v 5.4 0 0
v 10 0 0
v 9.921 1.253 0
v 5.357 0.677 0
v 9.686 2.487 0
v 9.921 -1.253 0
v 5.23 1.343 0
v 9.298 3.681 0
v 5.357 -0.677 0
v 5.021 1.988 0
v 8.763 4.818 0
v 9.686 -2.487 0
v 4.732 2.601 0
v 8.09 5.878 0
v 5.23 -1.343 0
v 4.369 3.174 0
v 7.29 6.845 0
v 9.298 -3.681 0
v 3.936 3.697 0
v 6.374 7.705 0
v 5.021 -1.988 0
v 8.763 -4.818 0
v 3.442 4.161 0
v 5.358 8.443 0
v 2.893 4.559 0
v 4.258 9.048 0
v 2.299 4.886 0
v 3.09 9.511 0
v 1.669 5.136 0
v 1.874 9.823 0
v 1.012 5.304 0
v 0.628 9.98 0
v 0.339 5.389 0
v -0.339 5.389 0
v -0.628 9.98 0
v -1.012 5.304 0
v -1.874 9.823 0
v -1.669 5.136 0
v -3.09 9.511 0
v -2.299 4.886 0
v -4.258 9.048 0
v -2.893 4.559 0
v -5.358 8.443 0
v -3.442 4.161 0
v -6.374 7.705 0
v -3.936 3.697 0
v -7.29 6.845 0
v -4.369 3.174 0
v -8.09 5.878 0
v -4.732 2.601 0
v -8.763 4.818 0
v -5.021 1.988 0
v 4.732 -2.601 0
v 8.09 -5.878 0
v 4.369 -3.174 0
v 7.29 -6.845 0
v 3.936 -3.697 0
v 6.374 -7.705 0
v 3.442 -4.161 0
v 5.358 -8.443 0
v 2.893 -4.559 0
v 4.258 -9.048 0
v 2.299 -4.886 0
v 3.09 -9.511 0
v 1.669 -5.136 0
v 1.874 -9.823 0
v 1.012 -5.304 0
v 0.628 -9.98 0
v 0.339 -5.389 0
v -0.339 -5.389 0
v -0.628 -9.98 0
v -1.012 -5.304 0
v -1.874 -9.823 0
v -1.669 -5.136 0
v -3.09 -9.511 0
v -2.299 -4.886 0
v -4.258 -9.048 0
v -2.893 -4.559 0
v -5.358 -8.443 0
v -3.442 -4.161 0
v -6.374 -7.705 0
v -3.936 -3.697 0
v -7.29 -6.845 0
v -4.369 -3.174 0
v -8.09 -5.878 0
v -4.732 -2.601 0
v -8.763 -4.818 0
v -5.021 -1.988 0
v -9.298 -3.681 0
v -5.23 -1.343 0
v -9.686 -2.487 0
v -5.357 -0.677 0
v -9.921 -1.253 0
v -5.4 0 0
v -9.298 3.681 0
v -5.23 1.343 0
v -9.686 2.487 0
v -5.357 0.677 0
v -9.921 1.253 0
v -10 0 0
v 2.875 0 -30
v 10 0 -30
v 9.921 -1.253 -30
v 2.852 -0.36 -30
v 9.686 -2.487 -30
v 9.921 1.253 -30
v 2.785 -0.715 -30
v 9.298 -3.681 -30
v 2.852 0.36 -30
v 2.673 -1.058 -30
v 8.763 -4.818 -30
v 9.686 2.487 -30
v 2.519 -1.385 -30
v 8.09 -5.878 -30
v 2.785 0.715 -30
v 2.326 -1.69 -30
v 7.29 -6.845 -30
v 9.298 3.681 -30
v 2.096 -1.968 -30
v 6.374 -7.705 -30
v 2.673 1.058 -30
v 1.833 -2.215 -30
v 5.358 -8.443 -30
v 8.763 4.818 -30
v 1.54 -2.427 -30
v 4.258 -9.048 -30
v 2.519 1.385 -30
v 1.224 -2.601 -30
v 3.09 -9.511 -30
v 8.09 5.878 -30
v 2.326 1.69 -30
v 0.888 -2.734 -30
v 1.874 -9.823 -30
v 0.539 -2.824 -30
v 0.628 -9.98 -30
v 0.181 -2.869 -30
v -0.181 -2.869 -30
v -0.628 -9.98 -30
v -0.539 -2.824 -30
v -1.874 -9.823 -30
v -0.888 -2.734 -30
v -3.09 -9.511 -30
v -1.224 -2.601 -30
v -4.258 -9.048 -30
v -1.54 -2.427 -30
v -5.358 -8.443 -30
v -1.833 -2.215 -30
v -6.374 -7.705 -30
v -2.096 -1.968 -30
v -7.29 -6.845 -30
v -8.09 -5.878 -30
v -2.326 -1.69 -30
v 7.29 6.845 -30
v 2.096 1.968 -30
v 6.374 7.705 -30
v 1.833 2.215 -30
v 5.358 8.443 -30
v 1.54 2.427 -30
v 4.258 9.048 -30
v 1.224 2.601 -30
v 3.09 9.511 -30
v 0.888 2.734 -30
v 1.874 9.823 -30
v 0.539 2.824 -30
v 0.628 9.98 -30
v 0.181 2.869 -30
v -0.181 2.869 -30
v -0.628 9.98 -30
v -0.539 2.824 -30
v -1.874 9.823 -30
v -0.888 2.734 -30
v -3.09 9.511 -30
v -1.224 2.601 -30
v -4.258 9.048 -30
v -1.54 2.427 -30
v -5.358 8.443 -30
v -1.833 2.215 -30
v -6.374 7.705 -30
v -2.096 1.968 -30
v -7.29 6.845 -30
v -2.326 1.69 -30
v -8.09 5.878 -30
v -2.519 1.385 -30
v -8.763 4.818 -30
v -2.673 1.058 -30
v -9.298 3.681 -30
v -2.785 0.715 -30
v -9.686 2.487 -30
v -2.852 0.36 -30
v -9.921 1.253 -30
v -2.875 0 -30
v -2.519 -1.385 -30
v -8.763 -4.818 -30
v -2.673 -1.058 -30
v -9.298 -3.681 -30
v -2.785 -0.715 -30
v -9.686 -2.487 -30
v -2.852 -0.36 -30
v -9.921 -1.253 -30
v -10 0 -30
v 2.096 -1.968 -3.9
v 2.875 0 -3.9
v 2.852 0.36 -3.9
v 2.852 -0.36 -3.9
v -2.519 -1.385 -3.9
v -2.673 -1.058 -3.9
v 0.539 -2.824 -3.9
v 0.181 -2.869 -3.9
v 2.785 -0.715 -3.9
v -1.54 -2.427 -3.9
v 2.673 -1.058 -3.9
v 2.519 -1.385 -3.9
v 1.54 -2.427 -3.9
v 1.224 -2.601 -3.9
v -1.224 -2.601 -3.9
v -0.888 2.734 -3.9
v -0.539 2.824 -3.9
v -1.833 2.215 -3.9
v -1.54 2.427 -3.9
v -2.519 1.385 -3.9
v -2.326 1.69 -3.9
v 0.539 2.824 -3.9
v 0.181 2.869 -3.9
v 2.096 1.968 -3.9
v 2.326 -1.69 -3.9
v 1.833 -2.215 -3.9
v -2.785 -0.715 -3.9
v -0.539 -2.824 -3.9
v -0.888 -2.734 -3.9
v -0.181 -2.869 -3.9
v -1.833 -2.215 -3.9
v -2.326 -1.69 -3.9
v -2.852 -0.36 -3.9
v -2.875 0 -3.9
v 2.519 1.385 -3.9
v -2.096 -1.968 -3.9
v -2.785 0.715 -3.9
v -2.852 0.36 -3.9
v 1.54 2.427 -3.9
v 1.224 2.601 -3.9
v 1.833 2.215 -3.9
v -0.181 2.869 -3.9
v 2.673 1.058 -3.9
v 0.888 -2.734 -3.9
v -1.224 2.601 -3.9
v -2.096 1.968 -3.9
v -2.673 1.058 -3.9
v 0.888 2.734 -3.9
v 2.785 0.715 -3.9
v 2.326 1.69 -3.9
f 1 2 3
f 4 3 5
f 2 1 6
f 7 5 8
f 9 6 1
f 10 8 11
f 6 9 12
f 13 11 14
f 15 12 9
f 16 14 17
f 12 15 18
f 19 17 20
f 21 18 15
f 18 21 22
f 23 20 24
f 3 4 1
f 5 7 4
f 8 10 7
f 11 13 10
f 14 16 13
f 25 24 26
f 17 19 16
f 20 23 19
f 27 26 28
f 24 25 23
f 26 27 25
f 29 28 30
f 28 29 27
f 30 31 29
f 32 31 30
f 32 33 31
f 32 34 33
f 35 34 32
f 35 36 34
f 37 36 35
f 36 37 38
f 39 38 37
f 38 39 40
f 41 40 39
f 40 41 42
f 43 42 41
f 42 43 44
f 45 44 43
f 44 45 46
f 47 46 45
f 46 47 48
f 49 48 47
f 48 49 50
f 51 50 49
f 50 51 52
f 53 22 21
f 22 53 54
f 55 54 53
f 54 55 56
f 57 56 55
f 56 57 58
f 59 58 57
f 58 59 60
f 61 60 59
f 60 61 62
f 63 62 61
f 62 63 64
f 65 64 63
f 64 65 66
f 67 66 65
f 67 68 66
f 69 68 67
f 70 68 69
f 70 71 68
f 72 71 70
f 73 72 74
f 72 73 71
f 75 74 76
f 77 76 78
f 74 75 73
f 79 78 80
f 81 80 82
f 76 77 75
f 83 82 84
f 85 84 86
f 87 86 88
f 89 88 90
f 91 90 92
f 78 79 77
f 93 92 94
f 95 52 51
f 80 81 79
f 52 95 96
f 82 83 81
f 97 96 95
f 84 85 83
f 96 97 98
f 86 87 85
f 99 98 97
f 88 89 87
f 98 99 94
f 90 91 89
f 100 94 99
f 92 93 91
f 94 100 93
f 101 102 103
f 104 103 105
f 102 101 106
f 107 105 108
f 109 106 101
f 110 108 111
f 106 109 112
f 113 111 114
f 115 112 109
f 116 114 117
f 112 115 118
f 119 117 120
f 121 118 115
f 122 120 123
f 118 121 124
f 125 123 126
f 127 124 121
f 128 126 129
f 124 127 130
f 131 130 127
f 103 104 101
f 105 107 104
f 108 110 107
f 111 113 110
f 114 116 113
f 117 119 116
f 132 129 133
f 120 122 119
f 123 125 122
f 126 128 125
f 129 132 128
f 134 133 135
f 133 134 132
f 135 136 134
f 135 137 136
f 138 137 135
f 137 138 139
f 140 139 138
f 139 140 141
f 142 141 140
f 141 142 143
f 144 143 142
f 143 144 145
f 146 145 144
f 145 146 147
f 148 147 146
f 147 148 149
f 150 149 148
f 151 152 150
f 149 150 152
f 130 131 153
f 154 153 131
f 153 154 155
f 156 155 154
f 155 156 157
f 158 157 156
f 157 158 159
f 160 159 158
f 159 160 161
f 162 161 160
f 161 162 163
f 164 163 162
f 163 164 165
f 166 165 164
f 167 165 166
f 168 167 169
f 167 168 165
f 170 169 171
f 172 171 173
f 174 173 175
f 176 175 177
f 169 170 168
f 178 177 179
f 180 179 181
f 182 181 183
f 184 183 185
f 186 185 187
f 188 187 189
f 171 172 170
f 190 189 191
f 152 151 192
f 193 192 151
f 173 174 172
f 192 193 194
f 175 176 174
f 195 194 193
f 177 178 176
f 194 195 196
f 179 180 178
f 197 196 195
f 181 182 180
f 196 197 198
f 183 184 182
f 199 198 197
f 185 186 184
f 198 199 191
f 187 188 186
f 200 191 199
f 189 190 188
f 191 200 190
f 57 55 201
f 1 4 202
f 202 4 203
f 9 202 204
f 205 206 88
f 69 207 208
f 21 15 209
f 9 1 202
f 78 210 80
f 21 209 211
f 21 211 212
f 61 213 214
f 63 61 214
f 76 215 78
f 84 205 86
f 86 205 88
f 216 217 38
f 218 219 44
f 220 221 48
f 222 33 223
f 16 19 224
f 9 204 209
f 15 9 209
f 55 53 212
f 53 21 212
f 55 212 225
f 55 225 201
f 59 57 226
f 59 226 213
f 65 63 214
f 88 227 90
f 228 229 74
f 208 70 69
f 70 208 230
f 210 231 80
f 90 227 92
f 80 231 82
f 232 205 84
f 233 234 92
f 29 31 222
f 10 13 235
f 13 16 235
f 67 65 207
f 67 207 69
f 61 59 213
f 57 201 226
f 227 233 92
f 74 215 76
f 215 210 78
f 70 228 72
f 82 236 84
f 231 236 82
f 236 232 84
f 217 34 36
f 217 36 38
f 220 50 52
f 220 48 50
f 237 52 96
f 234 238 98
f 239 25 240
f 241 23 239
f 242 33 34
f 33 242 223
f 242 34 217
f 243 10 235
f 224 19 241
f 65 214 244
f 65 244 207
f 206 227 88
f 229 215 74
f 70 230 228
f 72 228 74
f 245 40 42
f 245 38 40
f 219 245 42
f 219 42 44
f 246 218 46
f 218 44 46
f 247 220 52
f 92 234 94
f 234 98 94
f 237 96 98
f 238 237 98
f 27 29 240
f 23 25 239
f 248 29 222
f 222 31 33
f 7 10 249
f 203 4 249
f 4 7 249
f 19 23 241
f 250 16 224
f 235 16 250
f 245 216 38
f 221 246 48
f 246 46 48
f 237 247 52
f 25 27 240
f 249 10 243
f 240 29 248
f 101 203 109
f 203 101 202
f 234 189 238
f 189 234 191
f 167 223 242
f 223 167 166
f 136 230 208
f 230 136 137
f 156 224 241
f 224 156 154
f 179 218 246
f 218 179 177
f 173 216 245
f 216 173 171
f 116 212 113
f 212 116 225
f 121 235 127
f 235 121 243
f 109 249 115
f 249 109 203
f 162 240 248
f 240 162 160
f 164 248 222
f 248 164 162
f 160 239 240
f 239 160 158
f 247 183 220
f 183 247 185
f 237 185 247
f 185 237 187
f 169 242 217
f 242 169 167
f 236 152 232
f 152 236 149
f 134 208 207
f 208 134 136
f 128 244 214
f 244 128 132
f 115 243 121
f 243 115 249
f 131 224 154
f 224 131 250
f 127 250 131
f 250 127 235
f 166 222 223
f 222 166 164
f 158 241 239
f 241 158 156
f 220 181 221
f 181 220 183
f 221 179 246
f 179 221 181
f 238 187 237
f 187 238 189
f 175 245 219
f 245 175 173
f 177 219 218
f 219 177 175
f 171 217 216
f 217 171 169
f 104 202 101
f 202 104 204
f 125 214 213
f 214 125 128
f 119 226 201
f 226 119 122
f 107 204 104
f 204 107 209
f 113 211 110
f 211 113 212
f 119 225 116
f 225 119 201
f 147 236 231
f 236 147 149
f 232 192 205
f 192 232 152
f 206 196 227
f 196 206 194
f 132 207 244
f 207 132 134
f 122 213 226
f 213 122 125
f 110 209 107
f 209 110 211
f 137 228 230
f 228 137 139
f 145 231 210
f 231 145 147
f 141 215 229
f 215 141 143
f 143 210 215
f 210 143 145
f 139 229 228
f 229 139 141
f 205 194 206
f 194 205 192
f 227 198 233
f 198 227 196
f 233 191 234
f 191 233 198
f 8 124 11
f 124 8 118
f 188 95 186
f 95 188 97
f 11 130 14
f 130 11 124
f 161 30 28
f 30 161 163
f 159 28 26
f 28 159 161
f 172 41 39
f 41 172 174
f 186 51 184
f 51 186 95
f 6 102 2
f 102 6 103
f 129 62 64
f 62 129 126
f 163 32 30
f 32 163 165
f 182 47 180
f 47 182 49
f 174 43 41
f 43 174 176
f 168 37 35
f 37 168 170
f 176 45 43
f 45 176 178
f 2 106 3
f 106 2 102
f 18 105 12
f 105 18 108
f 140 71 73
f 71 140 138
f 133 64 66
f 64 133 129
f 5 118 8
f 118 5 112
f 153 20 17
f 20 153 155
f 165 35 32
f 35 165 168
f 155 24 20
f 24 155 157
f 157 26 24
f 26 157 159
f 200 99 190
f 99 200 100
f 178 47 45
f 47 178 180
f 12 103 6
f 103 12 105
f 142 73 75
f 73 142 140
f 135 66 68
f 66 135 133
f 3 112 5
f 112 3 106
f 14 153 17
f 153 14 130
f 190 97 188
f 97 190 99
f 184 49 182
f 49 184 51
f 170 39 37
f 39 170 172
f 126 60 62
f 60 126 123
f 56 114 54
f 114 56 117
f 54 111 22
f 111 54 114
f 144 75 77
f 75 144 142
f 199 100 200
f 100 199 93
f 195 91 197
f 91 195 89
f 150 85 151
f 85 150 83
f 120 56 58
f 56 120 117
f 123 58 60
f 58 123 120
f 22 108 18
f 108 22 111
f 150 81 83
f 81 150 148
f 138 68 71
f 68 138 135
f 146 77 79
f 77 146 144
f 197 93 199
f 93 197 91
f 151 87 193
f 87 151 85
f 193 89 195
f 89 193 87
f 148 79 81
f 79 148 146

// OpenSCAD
$fn = 50;


difference() {
	union() {
		translate(v = [0, 0, -30.0000000000]) {
			cylinder(h = 30, r = 10.0000000000);
		}
		cylinder(h = 0, r = 16.0000000000);
	}
	union() {
		translate(v = [0, 0, 0]) {
			rotate(a = [0, 0, 0]) {
				difference() {
					union() {
						#translate(v = [0, 0, -30.0000000000]) {
							cylinder(h = 30, r = 2.6000000000);
						}
						#translate(v = [0, 0, -3.9000000000]) {
							cylinder(h = 3.9000000000, r = 10.0000000000, r1 = 2.8750000000, r2 = 5.4000000000);
						}
						#translate(v = [0, 0, -30.0000000000]) {
							cylinder(h = 30, r = 2.8750000000);
						}
						#translate(v = [0, 0, -30.0000000000]) {
							cylinder(h = 30, r = 2.6000000000);
						}
					}
					union();
				}
			}
		}
	}
}
